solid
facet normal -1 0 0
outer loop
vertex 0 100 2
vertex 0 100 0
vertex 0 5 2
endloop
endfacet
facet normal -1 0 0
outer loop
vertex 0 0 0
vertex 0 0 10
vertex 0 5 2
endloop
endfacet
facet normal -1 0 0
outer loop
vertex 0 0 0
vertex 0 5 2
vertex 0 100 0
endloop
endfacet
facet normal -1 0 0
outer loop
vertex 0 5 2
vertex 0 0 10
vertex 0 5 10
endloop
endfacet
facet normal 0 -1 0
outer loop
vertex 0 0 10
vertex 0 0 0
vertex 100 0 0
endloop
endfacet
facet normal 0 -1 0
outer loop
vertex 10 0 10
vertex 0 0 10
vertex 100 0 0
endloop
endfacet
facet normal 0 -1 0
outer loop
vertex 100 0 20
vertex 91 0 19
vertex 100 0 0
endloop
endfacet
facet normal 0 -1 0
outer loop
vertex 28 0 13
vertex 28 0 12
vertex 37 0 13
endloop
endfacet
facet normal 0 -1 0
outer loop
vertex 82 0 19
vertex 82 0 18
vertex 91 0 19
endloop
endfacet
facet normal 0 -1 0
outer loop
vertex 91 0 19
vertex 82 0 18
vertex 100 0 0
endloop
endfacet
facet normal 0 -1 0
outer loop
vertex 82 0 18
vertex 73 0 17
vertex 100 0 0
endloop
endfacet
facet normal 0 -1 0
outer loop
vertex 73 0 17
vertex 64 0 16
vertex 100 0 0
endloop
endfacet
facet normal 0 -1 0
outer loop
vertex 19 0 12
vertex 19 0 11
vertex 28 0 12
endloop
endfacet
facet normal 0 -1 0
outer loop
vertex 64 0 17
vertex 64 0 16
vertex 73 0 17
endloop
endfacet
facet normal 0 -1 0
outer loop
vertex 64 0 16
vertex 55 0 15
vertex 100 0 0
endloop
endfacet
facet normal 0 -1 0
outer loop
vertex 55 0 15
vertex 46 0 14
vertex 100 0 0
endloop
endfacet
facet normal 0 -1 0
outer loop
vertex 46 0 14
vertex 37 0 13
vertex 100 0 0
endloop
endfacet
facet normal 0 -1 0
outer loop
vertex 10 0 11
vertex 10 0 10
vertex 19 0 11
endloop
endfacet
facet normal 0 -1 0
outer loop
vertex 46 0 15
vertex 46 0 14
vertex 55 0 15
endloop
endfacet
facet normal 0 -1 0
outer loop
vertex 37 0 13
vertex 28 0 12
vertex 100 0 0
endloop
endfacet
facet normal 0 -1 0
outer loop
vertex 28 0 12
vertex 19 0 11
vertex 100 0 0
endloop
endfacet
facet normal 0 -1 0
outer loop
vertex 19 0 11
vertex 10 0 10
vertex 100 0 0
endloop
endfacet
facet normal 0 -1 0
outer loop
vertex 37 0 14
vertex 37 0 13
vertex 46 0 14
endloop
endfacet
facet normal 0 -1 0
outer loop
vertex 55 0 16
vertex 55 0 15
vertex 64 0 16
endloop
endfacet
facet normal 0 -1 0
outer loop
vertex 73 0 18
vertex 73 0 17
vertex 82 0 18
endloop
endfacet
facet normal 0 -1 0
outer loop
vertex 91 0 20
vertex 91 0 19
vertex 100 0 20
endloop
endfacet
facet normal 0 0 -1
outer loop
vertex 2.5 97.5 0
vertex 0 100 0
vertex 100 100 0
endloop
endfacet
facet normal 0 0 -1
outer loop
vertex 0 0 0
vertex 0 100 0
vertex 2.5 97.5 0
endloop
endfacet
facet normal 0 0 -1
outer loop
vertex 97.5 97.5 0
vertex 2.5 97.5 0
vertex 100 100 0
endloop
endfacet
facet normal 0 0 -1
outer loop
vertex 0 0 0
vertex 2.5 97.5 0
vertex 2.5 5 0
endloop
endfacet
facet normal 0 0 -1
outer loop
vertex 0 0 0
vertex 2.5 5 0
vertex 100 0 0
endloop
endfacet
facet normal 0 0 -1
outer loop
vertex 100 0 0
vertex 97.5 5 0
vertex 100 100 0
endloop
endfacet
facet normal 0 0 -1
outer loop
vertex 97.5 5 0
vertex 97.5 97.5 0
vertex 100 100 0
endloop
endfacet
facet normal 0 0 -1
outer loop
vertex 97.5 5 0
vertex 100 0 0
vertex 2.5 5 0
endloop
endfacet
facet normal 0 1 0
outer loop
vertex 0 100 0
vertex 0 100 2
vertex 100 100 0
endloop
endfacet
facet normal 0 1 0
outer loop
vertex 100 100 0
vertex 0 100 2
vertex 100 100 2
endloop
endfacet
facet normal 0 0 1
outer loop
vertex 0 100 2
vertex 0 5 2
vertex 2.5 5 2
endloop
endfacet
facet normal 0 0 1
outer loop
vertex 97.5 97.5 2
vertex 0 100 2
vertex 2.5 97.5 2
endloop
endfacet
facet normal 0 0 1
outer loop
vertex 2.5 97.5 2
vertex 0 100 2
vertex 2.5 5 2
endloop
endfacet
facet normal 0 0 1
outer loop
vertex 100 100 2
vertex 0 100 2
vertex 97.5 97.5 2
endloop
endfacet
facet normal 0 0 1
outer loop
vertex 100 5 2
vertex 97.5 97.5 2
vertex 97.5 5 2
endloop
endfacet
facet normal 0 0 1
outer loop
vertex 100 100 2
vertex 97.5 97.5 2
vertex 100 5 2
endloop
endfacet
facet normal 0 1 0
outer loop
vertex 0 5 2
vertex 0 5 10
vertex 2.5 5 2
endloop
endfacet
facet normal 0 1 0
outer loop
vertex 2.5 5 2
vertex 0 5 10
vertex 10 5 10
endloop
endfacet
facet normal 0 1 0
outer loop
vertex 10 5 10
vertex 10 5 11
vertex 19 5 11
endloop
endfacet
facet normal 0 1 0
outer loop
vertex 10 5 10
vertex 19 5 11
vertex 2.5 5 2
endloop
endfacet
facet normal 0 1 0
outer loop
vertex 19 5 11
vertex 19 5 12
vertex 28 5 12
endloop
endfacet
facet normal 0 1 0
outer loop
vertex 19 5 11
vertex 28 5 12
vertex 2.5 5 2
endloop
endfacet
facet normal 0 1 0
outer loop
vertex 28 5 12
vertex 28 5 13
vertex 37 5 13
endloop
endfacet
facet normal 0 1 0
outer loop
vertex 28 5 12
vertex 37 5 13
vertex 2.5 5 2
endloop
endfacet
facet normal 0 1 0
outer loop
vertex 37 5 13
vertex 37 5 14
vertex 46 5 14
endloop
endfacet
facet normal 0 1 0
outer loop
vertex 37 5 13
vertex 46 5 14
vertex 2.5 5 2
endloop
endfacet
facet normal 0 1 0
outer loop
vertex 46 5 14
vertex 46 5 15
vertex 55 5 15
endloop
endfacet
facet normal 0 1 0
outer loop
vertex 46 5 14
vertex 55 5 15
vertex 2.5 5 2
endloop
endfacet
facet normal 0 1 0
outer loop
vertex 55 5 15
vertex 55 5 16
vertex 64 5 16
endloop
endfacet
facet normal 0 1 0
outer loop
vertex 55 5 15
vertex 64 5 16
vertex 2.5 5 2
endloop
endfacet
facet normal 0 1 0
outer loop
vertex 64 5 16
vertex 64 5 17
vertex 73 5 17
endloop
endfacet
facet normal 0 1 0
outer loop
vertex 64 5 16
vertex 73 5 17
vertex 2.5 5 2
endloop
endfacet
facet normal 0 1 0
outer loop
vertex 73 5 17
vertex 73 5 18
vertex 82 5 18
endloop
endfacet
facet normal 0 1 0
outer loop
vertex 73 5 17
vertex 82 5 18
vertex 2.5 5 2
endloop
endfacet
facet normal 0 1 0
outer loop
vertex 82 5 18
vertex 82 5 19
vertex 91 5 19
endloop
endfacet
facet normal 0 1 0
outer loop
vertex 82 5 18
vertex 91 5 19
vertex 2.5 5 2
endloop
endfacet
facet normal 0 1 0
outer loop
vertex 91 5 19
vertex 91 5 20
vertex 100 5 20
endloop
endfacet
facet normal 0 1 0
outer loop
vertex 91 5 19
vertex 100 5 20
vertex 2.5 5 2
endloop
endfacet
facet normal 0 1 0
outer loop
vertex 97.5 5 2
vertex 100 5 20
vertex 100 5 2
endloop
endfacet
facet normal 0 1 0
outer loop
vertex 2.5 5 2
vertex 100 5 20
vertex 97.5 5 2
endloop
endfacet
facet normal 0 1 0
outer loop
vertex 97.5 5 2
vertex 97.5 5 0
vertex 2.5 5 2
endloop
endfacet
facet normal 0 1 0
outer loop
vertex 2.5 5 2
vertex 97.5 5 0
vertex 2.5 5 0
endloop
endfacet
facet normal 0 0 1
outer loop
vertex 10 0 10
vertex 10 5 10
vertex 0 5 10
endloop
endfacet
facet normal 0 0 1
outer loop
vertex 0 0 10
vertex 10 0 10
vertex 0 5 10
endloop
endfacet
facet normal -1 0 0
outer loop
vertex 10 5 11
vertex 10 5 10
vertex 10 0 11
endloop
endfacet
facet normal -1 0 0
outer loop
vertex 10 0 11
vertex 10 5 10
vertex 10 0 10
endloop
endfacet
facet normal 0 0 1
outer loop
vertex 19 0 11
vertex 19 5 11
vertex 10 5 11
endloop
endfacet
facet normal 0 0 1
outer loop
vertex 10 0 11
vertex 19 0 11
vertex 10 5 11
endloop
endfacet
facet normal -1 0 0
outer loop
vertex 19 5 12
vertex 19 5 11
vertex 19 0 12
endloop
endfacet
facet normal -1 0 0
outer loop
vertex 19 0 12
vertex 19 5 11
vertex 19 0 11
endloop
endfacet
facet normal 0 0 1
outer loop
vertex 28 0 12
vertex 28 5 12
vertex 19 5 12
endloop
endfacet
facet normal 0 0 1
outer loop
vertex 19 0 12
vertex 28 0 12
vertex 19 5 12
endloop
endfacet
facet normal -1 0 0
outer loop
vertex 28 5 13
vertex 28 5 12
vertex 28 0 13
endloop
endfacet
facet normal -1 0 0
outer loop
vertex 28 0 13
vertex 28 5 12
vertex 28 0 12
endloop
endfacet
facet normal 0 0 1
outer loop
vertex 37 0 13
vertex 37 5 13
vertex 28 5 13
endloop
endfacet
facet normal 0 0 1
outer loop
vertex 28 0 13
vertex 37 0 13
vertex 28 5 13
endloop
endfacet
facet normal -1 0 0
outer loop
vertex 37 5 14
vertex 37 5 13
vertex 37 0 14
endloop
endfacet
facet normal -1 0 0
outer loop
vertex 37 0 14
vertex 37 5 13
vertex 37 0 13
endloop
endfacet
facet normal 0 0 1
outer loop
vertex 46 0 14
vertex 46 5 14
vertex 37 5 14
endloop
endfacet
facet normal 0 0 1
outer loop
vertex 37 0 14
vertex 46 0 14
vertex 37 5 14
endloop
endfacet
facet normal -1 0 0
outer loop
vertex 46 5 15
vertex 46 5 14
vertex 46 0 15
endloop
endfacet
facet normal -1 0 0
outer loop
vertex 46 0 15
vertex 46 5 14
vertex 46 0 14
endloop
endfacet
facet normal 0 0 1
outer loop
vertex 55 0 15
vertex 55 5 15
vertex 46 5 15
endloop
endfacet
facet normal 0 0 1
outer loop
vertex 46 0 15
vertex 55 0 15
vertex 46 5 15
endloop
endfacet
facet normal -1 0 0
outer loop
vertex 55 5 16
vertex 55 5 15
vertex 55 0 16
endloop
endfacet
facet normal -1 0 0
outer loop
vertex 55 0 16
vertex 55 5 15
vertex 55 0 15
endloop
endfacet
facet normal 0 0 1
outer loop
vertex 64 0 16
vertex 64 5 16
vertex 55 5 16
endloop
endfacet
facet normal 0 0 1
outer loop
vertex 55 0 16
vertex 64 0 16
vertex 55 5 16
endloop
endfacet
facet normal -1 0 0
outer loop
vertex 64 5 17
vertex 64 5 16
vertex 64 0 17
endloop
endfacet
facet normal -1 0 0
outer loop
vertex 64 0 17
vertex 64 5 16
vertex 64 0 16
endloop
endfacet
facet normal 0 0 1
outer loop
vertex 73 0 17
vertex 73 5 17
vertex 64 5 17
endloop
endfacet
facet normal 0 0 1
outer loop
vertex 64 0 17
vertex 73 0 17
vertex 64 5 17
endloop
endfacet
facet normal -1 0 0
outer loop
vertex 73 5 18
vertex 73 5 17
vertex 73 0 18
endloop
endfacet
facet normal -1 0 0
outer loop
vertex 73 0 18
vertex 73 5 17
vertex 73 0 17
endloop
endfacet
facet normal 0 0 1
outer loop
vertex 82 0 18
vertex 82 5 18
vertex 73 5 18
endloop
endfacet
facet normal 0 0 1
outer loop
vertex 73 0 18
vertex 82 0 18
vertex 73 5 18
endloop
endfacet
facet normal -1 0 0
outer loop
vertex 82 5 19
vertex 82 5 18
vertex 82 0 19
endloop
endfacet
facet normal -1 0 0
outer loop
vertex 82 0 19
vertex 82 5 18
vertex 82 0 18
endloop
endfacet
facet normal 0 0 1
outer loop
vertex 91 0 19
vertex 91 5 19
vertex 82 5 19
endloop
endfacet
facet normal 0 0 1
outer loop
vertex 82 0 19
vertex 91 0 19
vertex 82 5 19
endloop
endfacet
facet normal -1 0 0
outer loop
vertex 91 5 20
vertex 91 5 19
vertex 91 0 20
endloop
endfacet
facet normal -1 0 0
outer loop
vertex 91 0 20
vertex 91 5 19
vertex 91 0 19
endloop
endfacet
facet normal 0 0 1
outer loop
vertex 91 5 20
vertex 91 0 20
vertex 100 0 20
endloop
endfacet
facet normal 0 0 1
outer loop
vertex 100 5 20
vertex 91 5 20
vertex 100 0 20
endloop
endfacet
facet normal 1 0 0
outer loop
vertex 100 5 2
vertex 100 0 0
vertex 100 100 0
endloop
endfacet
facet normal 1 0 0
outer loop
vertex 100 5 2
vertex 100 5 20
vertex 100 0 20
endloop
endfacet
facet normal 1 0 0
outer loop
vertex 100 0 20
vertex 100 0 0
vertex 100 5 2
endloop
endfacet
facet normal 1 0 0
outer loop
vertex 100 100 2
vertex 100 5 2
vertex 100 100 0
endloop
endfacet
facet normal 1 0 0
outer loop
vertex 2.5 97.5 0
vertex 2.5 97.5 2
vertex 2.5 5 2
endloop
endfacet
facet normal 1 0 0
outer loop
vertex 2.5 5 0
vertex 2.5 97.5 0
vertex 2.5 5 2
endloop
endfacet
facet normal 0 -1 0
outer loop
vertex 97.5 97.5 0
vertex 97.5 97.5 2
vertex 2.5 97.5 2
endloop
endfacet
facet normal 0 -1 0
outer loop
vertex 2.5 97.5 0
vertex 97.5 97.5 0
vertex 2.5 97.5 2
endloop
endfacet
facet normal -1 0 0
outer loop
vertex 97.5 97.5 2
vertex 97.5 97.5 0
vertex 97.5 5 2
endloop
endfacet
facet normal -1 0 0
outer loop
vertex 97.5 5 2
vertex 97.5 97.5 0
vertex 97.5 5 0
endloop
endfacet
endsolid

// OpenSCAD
// Calibration piece for RepRap

difference()
{
  cube([100,100,2], center=false);
  translate([2.5,2.5,-1]) cube([95, 95, 4], center=false);
};

module step()
{
  cube([100,5,20]);
}

module steps()
{
  for ( i = [0:10] )
  {
    translate([-i*9,0,20-i]) cube([100,5,20], center=false);
  }
}

difference()
{
  step();
  steps();
}
